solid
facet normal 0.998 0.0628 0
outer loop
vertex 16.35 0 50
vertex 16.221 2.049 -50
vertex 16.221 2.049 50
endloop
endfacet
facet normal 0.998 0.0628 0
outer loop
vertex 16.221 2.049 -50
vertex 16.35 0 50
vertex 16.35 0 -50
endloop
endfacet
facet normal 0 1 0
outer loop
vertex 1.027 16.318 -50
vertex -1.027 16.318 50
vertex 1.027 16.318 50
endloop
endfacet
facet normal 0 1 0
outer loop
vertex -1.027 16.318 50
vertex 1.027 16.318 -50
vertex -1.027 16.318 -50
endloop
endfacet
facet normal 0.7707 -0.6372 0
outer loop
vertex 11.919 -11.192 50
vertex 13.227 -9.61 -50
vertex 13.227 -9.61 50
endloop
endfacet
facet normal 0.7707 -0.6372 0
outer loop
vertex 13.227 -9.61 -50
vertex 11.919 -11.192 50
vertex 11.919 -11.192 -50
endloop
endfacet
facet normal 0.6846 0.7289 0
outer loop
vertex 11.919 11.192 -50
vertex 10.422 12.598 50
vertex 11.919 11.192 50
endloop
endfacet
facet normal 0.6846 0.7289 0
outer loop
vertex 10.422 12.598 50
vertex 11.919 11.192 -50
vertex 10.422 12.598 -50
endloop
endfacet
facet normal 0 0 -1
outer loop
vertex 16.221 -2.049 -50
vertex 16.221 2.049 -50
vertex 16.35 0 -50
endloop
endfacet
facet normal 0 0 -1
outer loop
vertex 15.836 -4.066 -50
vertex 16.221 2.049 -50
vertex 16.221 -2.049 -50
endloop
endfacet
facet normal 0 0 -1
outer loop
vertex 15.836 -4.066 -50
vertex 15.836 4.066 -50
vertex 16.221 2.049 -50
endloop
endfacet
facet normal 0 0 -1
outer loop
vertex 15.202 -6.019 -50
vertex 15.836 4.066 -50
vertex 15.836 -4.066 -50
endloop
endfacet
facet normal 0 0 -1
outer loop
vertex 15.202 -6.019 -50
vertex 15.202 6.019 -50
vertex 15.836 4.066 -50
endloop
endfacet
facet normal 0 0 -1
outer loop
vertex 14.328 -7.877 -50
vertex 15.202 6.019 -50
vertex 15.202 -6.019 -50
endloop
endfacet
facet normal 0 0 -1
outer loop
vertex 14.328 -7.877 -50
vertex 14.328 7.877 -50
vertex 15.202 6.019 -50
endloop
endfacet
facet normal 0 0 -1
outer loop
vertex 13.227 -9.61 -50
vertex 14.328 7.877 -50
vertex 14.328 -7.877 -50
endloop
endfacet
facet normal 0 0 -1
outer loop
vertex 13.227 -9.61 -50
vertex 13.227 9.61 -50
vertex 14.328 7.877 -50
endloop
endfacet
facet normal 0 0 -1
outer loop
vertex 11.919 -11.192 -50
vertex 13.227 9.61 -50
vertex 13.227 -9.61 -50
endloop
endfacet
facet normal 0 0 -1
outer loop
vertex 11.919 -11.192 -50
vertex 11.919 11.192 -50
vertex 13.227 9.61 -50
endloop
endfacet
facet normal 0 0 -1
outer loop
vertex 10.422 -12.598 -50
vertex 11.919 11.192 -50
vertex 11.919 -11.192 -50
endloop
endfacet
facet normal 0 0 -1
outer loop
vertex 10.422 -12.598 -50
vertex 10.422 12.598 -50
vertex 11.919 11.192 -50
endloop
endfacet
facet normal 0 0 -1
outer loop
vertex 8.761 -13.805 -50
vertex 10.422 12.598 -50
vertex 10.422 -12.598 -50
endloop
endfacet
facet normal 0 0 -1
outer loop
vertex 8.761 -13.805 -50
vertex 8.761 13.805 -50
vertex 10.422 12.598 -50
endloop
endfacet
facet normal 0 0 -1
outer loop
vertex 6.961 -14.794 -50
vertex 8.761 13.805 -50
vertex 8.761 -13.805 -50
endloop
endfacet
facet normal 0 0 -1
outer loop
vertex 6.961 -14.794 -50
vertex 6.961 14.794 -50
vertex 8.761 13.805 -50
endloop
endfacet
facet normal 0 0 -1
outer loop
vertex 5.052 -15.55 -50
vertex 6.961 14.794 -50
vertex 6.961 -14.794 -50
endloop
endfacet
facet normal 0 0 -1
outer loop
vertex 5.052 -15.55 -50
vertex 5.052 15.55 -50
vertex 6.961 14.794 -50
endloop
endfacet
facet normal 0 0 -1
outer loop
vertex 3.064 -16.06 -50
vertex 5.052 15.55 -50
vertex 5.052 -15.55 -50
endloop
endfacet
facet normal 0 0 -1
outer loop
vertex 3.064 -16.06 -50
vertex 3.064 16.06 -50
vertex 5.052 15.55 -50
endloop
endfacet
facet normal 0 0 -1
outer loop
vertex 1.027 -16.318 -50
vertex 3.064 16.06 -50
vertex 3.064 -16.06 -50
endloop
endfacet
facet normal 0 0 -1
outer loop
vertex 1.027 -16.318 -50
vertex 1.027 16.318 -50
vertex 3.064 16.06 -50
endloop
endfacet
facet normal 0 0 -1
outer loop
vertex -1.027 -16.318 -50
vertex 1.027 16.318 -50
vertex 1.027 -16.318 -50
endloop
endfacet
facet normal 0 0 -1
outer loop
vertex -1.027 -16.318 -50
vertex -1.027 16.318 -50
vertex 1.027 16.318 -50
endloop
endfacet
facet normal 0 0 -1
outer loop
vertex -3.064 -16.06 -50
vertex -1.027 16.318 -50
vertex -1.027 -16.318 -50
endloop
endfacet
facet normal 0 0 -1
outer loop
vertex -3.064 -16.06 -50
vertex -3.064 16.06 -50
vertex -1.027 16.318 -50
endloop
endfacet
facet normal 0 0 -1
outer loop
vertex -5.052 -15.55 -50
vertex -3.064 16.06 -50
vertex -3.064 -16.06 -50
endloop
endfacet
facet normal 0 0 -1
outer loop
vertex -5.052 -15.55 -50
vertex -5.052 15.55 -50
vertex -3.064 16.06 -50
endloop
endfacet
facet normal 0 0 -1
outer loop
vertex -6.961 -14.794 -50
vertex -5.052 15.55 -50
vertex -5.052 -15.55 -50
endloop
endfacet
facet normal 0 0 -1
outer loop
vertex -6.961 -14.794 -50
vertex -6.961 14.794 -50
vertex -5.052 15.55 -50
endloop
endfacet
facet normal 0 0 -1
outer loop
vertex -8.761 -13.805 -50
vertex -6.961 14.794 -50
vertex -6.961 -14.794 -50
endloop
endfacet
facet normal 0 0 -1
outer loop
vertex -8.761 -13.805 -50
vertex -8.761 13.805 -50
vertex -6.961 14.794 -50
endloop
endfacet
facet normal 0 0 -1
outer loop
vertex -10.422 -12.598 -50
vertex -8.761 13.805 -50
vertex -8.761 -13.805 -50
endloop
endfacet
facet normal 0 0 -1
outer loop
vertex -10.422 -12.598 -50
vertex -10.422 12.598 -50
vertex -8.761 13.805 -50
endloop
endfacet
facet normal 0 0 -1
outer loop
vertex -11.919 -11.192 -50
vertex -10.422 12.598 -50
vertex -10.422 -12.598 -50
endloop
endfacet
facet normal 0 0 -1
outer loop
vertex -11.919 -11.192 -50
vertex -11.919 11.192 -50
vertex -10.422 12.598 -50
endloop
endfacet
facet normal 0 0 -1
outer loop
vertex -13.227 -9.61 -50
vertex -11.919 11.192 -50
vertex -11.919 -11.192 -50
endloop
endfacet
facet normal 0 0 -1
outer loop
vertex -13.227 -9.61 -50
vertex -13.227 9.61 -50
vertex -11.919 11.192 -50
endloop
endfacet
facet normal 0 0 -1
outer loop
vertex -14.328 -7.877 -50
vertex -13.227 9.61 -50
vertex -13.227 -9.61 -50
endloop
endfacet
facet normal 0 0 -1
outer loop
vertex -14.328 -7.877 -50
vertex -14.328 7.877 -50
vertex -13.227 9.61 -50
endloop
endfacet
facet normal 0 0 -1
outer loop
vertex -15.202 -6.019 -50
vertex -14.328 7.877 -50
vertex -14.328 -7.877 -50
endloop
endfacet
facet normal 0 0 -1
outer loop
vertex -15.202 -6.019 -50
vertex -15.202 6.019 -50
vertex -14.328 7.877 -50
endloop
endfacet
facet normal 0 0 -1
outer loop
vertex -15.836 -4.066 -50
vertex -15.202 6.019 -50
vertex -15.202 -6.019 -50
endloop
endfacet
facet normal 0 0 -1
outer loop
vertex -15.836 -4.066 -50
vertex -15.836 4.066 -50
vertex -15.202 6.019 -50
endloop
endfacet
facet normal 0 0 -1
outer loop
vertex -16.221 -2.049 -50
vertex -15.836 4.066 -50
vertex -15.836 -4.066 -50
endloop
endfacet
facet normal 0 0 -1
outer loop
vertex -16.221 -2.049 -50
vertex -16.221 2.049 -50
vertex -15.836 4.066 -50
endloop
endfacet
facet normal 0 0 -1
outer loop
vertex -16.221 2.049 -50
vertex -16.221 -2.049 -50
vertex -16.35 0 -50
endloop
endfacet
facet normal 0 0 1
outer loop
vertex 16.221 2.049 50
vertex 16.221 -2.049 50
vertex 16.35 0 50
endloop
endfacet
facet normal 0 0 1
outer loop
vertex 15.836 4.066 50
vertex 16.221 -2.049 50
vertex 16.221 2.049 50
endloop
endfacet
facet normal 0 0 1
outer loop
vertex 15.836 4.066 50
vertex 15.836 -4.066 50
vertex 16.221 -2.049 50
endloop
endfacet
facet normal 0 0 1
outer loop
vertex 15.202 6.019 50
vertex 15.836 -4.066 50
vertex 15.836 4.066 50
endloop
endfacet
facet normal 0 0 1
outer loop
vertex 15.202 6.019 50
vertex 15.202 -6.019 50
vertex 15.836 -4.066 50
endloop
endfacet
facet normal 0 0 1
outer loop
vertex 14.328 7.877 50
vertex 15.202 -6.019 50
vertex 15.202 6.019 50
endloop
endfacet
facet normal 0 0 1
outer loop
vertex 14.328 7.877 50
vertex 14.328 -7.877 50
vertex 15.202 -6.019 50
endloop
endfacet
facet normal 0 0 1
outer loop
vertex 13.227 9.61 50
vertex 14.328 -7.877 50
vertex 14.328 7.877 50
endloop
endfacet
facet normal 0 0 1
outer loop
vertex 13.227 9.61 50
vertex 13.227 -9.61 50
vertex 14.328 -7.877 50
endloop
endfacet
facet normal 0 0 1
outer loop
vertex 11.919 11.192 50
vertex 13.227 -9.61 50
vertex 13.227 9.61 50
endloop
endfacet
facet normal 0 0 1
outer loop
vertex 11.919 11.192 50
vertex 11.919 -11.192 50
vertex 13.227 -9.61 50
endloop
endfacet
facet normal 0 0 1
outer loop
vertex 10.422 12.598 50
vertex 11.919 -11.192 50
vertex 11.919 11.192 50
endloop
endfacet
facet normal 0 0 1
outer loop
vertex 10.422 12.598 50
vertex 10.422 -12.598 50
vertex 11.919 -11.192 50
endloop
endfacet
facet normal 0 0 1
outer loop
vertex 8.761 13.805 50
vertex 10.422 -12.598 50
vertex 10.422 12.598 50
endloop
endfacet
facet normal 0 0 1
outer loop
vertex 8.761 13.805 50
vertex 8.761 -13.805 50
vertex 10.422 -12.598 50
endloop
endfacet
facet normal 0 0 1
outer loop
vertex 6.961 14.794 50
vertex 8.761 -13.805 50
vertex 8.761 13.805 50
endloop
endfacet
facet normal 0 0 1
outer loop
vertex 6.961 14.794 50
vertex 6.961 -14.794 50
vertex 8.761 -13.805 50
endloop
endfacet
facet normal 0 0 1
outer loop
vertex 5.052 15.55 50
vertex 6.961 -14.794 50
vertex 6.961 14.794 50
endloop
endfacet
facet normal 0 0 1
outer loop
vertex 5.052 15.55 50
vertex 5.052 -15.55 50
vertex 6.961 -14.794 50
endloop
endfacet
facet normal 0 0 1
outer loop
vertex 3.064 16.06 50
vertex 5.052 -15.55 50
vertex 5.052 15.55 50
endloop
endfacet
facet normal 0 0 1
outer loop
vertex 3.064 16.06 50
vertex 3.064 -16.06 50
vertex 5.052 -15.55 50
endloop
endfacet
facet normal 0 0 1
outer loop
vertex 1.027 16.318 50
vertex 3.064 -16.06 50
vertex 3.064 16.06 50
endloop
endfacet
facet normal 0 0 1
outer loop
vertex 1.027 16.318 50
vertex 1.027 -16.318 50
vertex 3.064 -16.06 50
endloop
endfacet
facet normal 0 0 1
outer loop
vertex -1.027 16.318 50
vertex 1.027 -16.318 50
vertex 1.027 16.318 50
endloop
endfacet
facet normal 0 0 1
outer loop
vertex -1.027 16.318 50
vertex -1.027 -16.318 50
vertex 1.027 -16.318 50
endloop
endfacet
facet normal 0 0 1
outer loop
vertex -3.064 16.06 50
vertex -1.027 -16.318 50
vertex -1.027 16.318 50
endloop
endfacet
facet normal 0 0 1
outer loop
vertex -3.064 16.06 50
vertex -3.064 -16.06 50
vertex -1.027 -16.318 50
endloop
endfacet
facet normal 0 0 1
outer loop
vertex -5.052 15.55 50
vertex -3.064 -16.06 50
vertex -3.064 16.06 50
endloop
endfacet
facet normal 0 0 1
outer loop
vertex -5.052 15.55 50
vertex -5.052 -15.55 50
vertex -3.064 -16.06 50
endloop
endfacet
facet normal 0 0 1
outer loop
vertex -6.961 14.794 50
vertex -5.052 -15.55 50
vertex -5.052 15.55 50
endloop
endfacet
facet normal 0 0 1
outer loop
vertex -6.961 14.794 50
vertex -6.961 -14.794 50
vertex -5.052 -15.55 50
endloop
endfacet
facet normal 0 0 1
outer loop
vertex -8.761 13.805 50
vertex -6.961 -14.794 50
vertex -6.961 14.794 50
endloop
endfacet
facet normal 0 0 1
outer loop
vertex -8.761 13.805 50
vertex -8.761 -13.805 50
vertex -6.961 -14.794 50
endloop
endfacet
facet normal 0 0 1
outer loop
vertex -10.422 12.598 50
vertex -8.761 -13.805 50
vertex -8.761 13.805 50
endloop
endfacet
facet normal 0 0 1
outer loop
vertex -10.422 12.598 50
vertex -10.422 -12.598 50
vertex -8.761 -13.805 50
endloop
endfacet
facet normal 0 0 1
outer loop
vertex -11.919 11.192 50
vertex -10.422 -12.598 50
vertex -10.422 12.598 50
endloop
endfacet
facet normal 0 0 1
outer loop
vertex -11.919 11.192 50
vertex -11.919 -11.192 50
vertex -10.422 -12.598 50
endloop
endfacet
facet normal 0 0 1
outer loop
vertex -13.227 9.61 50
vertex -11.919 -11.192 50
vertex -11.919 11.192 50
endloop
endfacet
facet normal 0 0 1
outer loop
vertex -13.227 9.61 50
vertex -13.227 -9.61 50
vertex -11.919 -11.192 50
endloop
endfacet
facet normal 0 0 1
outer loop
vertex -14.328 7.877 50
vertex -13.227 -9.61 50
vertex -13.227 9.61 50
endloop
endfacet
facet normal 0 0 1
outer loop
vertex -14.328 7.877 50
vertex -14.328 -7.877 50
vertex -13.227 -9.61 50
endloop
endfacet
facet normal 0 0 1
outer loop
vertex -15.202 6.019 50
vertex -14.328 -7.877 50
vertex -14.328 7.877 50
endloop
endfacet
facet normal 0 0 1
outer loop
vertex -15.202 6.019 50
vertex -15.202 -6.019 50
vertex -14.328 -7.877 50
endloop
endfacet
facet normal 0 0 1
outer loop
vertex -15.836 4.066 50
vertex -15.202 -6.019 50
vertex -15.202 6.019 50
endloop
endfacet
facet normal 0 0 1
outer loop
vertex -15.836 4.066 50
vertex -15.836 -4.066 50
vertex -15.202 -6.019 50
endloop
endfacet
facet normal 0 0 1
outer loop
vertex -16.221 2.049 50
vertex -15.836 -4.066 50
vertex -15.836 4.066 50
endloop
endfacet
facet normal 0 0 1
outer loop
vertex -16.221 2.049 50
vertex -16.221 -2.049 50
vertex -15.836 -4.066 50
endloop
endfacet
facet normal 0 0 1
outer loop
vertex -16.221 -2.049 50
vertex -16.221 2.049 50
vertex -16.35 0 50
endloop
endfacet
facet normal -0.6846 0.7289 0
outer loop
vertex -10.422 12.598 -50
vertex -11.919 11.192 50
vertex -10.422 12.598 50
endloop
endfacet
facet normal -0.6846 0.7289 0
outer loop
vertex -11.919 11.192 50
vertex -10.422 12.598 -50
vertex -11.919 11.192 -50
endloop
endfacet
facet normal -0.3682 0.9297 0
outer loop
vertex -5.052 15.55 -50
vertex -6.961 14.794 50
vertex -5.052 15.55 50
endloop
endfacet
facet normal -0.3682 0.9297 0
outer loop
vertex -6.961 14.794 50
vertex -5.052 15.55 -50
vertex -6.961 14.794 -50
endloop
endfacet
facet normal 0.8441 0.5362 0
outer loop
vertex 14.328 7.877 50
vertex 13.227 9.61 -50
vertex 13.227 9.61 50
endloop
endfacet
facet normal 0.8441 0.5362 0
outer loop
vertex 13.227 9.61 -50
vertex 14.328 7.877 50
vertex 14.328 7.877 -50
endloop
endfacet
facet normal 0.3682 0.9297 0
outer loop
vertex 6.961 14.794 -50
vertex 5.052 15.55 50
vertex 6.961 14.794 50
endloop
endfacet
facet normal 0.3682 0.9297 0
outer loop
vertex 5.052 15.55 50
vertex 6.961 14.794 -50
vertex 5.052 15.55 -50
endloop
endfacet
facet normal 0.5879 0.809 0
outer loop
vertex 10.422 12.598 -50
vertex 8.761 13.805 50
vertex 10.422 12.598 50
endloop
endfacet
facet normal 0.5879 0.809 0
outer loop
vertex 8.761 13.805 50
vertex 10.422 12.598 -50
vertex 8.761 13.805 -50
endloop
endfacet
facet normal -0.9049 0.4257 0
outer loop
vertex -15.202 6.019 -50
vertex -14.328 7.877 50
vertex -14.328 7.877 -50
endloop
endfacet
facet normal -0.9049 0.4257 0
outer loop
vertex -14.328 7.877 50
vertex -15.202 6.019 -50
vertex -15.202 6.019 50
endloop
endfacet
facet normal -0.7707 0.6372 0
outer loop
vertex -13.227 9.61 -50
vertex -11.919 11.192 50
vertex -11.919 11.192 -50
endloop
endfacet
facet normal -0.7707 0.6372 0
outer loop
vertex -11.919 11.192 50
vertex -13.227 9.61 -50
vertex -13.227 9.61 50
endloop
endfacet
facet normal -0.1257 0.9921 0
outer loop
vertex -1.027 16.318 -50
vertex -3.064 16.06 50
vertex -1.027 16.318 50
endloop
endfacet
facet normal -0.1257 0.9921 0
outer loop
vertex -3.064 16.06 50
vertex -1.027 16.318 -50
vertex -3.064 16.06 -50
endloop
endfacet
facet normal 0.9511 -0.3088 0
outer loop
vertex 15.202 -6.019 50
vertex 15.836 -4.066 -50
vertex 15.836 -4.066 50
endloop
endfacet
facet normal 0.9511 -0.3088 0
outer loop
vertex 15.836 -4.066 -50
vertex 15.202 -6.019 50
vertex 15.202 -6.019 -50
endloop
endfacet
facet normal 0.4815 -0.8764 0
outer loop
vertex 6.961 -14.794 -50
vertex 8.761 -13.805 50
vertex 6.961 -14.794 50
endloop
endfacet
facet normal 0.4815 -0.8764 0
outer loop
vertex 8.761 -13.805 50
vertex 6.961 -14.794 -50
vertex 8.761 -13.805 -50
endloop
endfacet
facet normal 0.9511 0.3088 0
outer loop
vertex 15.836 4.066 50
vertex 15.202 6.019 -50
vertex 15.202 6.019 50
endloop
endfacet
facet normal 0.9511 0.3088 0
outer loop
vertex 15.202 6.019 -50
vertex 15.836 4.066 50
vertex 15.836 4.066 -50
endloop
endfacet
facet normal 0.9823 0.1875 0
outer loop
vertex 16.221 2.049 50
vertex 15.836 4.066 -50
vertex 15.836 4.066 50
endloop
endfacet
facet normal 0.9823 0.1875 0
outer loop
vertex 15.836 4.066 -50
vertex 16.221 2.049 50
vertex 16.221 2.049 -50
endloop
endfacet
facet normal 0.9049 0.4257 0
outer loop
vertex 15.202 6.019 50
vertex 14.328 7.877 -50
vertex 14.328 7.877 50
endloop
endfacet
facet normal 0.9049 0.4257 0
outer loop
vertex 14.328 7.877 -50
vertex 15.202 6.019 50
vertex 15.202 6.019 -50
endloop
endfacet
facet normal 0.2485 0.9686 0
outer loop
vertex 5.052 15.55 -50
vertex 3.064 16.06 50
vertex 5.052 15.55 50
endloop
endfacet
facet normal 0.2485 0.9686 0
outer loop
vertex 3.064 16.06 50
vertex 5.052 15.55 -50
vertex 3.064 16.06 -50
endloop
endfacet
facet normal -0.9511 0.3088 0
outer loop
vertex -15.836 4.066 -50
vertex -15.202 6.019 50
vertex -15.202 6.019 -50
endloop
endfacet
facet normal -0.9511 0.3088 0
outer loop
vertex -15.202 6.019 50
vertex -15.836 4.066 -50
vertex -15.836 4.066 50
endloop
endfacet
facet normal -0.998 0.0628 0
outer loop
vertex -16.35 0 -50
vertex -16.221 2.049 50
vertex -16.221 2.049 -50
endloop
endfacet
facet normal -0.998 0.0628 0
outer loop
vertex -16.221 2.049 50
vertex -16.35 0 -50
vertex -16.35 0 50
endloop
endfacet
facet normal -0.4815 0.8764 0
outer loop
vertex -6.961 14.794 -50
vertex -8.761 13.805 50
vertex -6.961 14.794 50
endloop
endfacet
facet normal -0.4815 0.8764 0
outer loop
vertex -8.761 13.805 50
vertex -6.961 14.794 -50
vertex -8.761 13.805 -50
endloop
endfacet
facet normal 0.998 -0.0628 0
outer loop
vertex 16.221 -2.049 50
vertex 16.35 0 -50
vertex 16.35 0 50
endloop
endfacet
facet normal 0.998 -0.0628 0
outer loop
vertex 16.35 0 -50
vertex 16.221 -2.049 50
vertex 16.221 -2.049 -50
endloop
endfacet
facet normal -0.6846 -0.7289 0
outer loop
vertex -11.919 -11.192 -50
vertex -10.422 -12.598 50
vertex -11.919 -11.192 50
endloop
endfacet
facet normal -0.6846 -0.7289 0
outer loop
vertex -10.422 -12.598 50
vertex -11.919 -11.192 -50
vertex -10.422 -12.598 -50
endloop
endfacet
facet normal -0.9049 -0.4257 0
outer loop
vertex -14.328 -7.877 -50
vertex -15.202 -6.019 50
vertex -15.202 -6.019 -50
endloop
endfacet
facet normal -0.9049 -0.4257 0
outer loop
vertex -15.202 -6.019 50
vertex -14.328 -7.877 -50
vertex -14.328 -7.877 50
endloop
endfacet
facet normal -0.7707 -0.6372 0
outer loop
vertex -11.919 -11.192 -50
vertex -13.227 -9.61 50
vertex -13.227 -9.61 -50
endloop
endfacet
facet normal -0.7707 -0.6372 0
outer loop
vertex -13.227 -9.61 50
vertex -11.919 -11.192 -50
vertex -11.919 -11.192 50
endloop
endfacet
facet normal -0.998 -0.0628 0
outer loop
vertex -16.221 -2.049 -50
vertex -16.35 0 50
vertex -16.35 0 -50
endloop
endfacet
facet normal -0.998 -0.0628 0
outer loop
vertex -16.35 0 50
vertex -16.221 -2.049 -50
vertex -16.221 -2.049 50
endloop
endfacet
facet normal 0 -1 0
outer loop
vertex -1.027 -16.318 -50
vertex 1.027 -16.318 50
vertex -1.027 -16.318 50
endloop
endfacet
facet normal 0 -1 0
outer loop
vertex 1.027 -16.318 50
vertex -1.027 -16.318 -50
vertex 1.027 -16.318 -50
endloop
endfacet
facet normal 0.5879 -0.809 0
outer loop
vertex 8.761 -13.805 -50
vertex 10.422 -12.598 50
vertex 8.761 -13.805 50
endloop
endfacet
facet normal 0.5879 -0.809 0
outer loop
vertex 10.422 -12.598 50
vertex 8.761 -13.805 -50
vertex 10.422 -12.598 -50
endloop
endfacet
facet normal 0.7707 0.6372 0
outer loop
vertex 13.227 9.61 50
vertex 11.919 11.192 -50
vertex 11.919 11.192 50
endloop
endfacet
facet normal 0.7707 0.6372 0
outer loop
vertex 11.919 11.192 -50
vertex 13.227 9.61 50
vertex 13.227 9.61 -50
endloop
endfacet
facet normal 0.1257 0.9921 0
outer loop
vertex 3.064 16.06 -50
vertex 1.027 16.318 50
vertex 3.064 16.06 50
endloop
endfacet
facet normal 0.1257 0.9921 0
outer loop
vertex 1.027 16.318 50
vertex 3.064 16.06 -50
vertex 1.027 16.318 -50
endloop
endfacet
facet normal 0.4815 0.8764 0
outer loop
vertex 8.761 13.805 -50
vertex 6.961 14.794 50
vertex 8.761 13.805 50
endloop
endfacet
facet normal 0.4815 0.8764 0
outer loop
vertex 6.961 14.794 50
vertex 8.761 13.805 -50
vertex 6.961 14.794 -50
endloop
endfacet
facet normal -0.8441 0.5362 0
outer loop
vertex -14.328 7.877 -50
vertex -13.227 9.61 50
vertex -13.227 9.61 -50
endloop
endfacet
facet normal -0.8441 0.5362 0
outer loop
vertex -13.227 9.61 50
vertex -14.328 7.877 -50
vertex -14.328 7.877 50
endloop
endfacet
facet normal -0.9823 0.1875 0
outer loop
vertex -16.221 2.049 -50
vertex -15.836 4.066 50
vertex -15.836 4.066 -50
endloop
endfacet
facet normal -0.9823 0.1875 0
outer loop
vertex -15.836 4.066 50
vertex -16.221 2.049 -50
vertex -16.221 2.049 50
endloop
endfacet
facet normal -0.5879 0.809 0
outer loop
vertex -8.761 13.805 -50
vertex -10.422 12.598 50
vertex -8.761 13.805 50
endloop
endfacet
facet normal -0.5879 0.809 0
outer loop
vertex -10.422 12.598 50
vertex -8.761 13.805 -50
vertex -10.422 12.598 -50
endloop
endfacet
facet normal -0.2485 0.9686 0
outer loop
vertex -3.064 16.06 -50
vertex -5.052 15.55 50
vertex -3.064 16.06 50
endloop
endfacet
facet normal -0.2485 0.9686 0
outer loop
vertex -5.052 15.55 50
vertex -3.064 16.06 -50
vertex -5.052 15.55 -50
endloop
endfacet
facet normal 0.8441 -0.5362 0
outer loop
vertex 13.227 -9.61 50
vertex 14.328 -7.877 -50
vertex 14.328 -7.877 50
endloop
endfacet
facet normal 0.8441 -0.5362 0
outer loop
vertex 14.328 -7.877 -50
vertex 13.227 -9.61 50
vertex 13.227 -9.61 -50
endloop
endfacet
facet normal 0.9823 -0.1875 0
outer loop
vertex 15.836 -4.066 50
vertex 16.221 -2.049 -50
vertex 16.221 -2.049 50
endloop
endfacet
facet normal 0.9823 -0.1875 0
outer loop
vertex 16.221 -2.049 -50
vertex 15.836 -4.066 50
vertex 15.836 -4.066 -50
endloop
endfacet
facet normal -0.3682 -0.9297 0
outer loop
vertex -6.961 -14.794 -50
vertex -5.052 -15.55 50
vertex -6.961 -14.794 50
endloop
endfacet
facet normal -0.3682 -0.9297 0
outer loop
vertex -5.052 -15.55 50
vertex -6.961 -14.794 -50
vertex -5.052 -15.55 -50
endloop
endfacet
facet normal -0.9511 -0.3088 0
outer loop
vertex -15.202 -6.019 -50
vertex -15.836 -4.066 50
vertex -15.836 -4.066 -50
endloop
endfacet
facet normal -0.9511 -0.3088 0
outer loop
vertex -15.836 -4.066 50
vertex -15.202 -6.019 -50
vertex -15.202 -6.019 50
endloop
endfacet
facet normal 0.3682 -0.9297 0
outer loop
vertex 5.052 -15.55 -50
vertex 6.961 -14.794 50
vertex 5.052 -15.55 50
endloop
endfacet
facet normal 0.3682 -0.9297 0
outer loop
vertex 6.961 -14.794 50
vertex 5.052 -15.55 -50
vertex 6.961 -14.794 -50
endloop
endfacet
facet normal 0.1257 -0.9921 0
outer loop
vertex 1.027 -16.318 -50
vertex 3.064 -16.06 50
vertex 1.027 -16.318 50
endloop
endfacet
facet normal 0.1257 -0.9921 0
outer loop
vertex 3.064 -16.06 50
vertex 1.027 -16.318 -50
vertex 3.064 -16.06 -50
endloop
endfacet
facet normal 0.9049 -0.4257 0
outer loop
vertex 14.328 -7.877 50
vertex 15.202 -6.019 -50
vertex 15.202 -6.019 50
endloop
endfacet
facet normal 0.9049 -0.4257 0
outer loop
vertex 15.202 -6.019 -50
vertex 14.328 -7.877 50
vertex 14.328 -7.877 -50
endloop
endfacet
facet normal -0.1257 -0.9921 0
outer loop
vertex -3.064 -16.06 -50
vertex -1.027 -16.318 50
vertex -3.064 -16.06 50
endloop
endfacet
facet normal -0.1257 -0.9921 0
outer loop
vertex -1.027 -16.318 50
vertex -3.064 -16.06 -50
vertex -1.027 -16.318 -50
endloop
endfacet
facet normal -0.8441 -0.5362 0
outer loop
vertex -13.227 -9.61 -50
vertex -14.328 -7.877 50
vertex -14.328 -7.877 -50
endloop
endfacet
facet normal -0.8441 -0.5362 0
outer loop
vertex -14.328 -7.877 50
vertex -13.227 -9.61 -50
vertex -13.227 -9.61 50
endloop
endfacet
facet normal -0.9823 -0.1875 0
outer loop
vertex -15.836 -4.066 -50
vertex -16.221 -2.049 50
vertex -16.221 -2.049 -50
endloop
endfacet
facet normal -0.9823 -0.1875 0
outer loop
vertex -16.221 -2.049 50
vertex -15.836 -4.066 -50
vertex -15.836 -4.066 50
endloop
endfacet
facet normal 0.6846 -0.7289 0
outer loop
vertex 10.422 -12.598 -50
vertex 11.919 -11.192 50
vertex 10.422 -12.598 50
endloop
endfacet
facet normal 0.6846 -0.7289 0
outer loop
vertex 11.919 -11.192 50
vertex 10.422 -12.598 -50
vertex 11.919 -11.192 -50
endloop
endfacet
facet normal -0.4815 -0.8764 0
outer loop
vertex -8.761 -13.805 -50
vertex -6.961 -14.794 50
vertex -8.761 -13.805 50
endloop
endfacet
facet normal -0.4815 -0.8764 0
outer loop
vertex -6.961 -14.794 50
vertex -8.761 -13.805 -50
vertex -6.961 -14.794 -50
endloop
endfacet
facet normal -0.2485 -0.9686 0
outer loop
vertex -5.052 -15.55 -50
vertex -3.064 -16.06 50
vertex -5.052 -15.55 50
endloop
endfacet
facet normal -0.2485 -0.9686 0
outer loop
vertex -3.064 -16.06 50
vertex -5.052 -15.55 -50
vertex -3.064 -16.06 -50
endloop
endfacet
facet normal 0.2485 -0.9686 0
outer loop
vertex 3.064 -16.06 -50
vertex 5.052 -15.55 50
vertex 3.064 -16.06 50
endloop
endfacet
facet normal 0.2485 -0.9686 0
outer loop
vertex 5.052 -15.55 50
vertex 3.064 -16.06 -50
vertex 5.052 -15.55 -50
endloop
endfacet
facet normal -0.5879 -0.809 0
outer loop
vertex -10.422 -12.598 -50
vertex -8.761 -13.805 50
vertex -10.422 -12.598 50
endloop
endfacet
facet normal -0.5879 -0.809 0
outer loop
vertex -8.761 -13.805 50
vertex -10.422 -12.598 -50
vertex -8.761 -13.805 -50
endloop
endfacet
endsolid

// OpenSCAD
$fn = 50;


difference() {
	union() {
		translate(v = [0, 0, -50.0000000000]) {
			cylinder(h = 100, r = 16.3500000000);
		}
	}
	union() {
		translate(v = [0, 0, -100.0000000000]) {
			cylinder(h = 200, r = 0);
		}
	}
}
